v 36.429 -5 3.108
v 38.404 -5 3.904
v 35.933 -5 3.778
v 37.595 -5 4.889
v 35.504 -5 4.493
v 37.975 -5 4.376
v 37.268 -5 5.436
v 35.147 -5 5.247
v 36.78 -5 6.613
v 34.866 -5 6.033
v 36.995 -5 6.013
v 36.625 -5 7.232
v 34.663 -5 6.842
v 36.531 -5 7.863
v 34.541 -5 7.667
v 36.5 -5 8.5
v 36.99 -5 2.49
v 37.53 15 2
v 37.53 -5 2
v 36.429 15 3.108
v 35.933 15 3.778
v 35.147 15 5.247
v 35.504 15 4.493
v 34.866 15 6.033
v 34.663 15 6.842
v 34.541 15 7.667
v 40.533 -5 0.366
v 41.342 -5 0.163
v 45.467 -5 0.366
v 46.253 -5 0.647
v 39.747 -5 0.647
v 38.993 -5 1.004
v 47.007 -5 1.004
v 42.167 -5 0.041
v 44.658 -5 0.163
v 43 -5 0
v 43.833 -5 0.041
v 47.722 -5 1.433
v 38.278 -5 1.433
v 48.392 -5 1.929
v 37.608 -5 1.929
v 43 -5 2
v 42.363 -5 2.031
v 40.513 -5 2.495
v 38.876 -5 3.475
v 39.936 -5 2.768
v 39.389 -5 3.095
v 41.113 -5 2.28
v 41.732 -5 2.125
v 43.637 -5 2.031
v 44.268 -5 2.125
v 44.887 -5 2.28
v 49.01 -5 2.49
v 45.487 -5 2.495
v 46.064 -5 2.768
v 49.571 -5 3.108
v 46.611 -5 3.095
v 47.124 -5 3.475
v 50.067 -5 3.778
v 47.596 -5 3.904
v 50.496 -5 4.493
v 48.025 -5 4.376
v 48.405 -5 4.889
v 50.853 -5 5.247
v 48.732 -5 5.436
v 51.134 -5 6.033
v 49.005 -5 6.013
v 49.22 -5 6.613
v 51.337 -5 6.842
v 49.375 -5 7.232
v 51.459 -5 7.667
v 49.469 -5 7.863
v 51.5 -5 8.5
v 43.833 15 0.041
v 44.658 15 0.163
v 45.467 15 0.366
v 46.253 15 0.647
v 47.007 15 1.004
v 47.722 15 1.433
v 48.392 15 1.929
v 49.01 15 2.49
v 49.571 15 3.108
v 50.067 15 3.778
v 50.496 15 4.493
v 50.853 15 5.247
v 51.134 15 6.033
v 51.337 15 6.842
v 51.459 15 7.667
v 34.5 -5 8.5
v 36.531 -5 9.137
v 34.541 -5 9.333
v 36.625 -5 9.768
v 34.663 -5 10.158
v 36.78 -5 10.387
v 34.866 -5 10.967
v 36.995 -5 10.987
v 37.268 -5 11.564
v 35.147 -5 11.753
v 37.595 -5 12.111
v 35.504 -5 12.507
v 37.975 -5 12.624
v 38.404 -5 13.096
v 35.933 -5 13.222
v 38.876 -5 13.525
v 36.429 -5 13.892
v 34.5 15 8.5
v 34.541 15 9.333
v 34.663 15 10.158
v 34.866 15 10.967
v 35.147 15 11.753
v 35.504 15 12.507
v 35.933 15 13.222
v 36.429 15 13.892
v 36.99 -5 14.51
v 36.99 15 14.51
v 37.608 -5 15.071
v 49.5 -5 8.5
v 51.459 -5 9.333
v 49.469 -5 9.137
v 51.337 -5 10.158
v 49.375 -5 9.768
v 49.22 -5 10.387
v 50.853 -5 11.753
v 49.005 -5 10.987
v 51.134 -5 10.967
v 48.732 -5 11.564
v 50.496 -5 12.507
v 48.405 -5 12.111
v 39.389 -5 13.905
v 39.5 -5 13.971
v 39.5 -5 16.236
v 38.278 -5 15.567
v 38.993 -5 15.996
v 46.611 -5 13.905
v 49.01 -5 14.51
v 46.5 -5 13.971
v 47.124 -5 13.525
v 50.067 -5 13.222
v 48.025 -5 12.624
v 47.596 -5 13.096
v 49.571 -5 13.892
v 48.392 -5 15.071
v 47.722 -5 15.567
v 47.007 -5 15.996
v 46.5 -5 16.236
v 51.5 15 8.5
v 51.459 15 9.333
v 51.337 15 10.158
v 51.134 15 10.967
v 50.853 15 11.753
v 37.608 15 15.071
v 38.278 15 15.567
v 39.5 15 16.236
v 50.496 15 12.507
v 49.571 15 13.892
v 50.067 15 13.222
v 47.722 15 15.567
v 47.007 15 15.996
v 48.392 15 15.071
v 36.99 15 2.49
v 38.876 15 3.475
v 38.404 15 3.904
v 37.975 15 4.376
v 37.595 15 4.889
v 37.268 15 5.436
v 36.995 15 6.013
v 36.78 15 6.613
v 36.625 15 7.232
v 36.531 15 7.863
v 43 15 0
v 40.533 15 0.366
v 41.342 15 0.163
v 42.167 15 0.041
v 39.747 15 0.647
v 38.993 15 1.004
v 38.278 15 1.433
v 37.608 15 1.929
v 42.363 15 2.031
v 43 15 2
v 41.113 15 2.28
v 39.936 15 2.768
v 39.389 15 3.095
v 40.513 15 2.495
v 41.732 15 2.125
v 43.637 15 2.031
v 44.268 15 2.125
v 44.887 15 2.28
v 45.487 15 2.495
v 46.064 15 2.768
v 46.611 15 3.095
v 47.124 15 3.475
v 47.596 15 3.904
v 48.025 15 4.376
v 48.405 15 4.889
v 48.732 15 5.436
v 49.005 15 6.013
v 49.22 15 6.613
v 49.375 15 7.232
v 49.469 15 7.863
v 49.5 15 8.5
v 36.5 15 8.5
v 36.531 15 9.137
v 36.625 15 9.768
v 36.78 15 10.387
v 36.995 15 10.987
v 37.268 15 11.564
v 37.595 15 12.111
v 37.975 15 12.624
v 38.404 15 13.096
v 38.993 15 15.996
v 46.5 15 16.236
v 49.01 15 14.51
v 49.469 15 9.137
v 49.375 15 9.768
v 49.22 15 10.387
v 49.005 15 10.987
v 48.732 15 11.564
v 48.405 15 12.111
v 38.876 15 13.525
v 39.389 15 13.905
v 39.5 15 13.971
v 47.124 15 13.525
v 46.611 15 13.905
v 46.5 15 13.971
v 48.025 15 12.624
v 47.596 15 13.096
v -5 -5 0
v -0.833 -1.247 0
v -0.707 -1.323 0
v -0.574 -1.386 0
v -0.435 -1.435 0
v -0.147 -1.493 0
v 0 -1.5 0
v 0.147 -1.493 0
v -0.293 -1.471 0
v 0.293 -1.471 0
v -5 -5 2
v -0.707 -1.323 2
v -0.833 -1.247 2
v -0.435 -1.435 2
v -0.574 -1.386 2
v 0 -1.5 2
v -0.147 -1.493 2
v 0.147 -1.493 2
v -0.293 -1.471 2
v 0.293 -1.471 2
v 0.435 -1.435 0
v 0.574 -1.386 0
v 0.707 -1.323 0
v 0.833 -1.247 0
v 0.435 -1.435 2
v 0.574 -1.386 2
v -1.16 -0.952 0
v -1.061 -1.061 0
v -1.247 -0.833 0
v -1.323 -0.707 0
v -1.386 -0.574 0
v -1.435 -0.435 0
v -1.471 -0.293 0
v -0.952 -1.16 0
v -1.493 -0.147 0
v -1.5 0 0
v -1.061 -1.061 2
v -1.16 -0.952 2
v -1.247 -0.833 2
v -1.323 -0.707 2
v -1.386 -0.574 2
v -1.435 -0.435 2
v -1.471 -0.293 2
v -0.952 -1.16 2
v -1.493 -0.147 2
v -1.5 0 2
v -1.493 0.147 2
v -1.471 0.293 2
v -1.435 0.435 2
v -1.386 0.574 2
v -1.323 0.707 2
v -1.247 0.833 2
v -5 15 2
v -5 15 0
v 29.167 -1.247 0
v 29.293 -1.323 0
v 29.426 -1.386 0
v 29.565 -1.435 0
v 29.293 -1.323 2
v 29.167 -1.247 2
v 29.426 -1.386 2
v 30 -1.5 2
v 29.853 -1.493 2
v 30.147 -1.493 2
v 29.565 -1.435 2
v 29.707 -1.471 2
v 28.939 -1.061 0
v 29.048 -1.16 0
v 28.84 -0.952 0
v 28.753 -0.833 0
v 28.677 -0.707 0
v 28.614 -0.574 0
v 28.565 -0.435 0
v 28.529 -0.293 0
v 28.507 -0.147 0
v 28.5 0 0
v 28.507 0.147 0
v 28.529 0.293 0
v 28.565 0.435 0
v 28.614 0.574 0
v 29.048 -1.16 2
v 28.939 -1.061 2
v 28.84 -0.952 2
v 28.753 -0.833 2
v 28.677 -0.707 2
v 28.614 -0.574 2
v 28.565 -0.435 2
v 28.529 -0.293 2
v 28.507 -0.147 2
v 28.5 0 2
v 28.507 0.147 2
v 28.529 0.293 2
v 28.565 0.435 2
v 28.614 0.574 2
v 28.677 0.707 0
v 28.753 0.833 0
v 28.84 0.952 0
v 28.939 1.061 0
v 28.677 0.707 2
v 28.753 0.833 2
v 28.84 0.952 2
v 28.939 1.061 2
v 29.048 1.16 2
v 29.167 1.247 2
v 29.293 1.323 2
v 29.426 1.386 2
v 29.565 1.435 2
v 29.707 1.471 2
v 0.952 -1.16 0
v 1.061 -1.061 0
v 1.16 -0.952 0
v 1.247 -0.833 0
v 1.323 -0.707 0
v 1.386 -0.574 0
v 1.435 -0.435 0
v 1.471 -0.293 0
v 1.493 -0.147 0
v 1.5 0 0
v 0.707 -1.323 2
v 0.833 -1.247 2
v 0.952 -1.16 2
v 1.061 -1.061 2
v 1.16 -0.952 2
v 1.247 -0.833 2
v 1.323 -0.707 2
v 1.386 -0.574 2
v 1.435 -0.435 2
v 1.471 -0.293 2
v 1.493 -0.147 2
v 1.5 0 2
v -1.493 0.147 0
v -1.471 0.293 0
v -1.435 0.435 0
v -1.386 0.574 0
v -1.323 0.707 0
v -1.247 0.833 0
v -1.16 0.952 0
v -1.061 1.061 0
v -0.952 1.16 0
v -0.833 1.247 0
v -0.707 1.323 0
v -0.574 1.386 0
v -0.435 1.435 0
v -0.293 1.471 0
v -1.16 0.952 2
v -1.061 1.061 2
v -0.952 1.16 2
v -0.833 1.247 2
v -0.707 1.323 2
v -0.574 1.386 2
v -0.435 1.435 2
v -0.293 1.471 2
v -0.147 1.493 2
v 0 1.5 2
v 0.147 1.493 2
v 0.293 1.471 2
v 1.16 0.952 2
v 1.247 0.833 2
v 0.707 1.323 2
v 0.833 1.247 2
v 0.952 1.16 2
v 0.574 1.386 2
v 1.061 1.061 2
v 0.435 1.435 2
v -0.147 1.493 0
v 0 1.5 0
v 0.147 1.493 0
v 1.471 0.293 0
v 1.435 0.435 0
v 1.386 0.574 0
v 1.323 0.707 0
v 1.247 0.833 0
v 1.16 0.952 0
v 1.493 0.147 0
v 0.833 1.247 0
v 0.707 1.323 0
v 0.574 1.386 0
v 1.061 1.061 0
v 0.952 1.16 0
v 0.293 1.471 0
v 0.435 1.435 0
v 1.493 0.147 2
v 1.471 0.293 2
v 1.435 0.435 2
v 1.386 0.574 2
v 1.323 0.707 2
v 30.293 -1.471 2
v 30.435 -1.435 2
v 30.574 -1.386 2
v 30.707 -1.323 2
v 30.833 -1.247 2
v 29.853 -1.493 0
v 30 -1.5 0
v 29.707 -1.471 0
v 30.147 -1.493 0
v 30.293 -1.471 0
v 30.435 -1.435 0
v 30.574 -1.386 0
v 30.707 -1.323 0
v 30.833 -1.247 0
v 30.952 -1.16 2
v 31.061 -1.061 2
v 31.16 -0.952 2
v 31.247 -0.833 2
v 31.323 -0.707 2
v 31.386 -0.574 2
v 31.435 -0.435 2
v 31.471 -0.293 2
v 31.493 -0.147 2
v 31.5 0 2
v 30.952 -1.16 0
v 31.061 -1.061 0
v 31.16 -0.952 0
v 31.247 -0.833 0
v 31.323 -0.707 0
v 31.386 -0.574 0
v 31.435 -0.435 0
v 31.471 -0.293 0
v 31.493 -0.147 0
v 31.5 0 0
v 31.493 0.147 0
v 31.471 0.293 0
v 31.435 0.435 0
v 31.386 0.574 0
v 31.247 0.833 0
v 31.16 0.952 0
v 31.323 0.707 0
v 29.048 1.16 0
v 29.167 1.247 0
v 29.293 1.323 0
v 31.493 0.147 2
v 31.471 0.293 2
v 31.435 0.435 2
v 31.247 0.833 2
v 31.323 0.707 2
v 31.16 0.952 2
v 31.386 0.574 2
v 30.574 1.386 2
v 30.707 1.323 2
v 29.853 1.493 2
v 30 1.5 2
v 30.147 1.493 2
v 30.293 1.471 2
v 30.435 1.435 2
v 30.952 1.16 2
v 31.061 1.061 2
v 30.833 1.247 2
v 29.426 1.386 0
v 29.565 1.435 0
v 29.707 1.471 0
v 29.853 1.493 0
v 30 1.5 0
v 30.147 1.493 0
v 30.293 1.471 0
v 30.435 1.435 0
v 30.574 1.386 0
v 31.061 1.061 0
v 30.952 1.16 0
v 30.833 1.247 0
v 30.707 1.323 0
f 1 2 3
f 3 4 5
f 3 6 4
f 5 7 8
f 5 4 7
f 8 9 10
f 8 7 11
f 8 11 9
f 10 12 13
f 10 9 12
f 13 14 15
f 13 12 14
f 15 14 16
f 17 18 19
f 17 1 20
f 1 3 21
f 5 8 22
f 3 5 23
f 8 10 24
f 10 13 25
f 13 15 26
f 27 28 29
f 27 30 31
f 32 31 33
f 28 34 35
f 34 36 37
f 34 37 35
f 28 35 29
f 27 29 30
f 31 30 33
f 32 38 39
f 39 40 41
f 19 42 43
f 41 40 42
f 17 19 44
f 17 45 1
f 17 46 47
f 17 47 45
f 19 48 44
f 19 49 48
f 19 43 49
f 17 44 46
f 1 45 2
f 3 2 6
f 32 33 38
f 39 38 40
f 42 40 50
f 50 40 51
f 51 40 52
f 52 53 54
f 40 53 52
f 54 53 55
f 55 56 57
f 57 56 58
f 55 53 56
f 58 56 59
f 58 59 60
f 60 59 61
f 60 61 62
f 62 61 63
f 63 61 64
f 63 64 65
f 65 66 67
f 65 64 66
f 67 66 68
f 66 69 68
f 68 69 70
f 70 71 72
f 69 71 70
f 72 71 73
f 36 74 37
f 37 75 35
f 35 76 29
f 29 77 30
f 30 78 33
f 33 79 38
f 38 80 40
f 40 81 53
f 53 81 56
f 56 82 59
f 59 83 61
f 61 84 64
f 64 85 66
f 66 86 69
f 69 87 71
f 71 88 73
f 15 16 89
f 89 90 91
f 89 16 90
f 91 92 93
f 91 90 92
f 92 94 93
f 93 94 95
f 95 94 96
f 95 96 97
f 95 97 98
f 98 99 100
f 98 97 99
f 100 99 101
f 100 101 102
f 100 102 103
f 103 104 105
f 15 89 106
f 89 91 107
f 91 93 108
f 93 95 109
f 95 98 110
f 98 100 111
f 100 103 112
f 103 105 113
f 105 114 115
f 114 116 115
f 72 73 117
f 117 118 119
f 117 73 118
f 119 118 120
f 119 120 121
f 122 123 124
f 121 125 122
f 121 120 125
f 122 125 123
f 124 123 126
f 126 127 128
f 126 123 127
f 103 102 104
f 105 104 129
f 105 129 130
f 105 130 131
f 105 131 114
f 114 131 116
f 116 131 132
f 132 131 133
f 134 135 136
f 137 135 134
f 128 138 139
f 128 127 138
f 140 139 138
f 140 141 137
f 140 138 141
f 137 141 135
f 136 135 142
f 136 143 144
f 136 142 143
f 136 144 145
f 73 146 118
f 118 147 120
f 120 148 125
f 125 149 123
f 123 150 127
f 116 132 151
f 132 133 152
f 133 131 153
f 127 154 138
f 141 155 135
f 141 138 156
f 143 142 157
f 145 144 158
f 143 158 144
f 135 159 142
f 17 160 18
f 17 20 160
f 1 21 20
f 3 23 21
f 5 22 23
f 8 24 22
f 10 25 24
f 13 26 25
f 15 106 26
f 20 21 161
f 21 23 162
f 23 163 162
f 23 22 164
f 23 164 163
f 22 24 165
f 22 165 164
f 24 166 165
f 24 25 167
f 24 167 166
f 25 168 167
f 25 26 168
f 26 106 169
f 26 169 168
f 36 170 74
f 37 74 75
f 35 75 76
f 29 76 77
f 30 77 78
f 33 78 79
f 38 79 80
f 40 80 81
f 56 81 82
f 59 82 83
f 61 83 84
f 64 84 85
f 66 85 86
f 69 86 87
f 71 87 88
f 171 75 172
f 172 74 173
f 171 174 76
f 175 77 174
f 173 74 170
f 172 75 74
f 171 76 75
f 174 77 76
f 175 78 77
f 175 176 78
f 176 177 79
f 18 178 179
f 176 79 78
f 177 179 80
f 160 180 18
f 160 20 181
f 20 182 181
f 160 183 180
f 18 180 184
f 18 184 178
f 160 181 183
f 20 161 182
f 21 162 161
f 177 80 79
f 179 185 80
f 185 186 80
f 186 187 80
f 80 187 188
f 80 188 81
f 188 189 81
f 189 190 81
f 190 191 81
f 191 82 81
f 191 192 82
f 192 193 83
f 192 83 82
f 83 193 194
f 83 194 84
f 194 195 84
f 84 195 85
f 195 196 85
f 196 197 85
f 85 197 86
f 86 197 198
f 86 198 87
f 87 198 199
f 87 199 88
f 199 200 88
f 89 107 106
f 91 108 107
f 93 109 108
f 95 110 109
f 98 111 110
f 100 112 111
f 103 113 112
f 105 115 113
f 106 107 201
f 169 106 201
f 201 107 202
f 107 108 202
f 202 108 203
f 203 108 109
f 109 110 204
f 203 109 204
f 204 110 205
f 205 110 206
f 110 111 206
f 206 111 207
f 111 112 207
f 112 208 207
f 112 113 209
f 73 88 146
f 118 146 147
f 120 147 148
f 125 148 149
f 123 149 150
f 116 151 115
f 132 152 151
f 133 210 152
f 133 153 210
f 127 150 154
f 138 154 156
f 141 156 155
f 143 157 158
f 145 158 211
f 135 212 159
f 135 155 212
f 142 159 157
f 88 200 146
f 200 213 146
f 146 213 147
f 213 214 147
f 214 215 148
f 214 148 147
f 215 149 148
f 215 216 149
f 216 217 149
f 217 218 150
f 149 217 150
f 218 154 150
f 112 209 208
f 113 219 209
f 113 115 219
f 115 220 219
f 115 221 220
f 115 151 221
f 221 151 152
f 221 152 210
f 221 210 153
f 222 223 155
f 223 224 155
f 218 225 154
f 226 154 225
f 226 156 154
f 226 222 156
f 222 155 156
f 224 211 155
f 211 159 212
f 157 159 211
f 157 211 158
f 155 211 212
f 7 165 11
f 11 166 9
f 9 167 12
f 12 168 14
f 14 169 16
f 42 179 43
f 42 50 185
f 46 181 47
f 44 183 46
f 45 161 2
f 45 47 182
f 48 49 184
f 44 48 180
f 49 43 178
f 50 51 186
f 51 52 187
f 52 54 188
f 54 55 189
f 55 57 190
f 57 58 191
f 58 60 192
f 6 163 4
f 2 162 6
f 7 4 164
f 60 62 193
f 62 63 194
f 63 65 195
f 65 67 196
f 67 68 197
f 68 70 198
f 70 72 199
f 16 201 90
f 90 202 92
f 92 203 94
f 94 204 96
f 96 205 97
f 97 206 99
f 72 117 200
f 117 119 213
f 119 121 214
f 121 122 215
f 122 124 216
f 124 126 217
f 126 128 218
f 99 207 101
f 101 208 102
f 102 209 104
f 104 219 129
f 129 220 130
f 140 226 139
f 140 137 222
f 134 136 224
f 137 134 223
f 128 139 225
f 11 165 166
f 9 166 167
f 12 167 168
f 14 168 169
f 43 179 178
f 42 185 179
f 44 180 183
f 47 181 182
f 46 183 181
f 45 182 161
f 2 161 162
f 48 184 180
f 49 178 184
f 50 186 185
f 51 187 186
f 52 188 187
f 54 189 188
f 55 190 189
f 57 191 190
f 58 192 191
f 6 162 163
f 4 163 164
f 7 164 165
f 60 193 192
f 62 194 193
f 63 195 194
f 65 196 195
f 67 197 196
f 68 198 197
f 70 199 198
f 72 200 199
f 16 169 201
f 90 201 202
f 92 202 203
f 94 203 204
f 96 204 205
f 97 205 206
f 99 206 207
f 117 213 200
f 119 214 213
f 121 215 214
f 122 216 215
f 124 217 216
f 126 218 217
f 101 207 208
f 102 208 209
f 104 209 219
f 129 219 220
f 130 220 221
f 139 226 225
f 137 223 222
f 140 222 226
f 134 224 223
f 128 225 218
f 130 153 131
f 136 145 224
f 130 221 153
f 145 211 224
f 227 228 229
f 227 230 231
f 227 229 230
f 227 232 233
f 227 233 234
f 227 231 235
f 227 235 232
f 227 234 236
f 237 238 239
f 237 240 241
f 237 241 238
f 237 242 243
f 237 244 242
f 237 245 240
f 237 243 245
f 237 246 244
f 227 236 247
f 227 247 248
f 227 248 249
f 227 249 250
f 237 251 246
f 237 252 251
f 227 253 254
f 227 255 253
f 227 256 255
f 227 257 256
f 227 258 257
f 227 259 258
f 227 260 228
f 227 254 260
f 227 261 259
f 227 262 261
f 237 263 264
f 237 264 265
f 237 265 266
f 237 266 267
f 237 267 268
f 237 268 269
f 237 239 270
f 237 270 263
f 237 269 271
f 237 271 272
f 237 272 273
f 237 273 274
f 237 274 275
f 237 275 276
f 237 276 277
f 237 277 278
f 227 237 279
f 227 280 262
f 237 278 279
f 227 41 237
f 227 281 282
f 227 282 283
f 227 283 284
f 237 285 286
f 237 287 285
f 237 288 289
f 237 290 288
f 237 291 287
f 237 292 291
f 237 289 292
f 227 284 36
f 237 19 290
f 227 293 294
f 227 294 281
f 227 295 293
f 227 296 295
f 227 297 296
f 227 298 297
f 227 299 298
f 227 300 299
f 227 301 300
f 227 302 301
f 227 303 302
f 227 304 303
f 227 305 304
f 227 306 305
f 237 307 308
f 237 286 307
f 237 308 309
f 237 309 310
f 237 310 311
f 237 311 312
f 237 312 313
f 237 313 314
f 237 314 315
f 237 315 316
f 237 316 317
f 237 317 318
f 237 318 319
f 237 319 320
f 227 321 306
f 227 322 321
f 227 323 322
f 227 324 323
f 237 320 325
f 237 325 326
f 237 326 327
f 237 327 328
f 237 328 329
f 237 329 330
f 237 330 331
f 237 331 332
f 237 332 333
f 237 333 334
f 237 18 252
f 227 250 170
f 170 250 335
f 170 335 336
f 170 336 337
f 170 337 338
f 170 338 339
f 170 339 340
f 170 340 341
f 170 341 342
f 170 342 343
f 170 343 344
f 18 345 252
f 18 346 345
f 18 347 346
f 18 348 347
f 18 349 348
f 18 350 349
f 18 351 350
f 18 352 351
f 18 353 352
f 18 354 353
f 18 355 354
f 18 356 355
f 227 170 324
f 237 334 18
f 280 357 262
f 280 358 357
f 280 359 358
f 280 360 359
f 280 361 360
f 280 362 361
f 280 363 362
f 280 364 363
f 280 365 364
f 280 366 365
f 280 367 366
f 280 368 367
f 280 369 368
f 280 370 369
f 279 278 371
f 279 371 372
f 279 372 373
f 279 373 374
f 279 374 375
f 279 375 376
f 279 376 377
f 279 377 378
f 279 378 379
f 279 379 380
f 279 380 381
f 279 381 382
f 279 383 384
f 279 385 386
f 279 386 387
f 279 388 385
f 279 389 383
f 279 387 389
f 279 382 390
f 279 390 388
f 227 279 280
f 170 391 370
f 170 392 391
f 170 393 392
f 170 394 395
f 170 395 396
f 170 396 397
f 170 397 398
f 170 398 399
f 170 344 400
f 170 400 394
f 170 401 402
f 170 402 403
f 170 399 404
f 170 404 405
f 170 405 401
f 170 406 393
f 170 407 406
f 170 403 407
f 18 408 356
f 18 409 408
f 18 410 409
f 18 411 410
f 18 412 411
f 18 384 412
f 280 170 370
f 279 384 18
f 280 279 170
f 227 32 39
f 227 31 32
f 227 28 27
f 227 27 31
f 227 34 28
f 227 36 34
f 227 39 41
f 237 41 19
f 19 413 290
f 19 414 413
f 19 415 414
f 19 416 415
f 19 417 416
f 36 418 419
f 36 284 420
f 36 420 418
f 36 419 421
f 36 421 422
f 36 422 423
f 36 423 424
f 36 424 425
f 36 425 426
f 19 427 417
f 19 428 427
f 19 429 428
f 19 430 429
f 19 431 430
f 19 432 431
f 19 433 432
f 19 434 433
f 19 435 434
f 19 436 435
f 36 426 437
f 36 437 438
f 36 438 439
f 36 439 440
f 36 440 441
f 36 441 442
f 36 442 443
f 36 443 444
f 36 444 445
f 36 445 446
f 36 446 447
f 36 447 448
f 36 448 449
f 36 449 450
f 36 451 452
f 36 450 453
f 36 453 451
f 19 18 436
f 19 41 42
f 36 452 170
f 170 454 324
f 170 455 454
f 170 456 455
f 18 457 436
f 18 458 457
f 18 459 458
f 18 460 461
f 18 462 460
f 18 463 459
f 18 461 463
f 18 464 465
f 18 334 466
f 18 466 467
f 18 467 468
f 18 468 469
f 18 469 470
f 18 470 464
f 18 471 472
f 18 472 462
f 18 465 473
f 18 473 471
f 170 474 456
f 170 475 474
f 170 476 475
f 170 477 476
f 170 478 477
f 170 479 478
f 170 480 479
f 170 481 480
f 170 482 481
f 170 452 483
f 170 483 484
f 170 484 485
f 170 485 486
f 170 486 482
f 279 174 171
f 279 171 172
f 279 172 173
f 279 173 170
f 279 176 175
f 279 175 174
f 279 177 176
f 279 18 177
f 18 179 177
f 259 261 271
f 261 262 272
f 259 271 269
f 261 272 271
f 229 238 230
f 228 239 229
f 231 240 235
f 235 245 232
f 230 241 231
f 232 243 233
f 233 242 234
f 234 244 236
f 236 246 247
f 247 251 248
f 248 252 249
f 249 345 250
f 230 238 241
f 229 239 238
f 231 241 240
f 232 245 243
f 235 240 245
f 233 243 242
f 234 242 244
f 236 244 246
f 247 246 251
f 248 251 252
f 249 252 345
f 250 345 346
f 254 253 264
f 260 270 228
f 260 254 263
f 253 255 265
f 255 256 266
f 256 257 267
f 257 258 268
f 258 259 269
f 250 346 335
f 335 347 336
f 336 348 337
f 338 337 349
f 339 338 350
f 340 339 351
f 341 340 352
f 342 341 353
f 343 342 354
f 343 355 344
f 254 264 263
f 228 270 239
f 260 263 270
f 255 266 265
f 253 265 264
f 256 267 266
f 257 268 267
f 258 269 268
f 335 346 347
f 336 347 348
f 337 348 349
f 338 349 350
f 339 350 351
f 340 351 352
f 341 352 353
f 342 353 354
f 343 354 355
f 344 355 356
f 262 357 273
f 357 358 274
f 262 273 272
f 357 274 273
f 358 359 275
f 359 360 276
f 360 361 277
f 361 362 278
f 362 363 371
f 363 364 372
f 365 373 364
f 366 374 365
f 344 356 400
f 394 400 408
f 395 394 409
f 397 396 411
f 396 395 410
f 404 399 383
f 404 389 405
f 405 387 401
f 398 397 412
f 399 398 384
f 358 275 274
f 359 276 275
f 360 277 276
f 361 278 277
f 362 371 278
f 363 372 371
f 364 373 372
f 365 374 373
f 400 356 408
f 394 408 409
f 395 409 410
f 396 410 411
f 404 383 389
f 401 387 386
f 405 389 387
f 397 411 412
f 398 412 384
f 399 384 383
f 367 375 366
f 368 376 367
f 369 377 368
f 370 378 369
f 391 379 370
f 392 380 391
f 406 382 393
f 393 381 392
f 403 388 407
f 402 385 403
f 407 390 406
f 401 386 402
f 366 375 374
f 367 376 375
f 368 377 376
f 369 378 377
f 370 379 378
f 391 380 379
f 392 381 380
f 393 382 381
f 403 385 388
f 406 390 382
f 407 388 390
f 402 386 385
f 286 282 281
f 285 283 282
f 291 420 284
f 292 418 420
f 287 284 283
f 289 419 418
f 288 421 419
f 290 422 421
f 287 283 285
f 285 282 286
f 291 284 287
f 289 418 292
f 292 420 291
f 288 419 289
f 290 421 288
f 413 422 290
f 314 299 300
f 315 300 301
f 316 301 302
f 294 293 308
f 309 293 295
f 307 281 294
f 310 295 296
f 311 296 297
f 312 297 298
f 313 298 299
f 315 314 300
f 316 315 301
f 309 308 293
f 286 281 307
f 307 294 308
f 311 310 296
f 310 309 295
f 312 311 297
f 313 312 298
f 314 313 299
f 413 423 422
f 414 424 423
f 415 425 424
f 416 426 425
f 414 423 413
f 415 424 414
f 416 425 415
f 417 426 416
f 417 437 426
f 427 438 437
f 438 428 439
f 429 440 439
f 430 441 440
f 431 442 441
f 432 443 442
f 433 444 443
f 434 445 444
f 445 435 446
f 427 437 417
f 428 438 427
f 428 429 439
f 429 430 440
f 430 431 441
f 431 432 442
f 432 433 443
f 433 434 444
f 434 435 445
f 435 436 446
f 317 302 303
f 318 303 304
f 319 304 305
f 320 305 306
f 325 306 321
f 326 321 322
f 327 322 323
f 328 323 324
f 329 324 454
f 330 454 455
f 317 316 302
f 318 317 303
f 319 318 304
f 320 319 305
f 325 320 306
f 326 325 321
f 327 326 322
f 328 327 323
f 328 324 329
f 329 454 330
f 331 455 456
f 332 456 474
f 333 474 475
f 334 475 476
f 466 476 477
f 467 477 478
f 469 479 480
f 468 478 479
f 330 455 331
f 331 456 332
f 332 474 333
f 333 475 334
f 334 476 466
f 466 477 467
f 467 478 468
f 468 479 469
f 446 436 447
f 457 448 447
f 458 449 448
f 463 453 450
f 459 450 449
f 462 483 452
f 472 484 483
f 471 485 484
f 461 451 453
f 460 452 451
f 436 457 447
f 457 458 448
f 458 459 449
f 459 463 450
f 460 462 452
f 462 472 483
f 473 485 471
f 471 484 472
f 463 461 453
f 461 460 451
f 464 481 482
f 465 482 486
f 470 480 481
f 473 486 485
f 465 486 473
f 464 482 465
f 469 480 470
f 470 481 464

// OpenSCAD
$fn = 64;

shift = 30;
wall = 5;
hook = 13;

difference() {
  union() {
    translate([-wall, -wall, 0]) cube([shift + hook + wall, 20, 2]);

    translate([shift + hook, -wall, 8.5]) difference() {
        rotate([-90, 0, 0]) cylinder(h=20, d=17);
        translate([0, -1, 0]) rotate([-90, 0, 0]) cylinder(h=52, d=hook);
        translate([-3.5,-1,0]) cube([7,40,10]);
      }
  }

  translate([0, 0, -1]) cylinder(h=50, d=3);
  translate([shift, 0, -1]) cylinder(h=50, d=3);
}
